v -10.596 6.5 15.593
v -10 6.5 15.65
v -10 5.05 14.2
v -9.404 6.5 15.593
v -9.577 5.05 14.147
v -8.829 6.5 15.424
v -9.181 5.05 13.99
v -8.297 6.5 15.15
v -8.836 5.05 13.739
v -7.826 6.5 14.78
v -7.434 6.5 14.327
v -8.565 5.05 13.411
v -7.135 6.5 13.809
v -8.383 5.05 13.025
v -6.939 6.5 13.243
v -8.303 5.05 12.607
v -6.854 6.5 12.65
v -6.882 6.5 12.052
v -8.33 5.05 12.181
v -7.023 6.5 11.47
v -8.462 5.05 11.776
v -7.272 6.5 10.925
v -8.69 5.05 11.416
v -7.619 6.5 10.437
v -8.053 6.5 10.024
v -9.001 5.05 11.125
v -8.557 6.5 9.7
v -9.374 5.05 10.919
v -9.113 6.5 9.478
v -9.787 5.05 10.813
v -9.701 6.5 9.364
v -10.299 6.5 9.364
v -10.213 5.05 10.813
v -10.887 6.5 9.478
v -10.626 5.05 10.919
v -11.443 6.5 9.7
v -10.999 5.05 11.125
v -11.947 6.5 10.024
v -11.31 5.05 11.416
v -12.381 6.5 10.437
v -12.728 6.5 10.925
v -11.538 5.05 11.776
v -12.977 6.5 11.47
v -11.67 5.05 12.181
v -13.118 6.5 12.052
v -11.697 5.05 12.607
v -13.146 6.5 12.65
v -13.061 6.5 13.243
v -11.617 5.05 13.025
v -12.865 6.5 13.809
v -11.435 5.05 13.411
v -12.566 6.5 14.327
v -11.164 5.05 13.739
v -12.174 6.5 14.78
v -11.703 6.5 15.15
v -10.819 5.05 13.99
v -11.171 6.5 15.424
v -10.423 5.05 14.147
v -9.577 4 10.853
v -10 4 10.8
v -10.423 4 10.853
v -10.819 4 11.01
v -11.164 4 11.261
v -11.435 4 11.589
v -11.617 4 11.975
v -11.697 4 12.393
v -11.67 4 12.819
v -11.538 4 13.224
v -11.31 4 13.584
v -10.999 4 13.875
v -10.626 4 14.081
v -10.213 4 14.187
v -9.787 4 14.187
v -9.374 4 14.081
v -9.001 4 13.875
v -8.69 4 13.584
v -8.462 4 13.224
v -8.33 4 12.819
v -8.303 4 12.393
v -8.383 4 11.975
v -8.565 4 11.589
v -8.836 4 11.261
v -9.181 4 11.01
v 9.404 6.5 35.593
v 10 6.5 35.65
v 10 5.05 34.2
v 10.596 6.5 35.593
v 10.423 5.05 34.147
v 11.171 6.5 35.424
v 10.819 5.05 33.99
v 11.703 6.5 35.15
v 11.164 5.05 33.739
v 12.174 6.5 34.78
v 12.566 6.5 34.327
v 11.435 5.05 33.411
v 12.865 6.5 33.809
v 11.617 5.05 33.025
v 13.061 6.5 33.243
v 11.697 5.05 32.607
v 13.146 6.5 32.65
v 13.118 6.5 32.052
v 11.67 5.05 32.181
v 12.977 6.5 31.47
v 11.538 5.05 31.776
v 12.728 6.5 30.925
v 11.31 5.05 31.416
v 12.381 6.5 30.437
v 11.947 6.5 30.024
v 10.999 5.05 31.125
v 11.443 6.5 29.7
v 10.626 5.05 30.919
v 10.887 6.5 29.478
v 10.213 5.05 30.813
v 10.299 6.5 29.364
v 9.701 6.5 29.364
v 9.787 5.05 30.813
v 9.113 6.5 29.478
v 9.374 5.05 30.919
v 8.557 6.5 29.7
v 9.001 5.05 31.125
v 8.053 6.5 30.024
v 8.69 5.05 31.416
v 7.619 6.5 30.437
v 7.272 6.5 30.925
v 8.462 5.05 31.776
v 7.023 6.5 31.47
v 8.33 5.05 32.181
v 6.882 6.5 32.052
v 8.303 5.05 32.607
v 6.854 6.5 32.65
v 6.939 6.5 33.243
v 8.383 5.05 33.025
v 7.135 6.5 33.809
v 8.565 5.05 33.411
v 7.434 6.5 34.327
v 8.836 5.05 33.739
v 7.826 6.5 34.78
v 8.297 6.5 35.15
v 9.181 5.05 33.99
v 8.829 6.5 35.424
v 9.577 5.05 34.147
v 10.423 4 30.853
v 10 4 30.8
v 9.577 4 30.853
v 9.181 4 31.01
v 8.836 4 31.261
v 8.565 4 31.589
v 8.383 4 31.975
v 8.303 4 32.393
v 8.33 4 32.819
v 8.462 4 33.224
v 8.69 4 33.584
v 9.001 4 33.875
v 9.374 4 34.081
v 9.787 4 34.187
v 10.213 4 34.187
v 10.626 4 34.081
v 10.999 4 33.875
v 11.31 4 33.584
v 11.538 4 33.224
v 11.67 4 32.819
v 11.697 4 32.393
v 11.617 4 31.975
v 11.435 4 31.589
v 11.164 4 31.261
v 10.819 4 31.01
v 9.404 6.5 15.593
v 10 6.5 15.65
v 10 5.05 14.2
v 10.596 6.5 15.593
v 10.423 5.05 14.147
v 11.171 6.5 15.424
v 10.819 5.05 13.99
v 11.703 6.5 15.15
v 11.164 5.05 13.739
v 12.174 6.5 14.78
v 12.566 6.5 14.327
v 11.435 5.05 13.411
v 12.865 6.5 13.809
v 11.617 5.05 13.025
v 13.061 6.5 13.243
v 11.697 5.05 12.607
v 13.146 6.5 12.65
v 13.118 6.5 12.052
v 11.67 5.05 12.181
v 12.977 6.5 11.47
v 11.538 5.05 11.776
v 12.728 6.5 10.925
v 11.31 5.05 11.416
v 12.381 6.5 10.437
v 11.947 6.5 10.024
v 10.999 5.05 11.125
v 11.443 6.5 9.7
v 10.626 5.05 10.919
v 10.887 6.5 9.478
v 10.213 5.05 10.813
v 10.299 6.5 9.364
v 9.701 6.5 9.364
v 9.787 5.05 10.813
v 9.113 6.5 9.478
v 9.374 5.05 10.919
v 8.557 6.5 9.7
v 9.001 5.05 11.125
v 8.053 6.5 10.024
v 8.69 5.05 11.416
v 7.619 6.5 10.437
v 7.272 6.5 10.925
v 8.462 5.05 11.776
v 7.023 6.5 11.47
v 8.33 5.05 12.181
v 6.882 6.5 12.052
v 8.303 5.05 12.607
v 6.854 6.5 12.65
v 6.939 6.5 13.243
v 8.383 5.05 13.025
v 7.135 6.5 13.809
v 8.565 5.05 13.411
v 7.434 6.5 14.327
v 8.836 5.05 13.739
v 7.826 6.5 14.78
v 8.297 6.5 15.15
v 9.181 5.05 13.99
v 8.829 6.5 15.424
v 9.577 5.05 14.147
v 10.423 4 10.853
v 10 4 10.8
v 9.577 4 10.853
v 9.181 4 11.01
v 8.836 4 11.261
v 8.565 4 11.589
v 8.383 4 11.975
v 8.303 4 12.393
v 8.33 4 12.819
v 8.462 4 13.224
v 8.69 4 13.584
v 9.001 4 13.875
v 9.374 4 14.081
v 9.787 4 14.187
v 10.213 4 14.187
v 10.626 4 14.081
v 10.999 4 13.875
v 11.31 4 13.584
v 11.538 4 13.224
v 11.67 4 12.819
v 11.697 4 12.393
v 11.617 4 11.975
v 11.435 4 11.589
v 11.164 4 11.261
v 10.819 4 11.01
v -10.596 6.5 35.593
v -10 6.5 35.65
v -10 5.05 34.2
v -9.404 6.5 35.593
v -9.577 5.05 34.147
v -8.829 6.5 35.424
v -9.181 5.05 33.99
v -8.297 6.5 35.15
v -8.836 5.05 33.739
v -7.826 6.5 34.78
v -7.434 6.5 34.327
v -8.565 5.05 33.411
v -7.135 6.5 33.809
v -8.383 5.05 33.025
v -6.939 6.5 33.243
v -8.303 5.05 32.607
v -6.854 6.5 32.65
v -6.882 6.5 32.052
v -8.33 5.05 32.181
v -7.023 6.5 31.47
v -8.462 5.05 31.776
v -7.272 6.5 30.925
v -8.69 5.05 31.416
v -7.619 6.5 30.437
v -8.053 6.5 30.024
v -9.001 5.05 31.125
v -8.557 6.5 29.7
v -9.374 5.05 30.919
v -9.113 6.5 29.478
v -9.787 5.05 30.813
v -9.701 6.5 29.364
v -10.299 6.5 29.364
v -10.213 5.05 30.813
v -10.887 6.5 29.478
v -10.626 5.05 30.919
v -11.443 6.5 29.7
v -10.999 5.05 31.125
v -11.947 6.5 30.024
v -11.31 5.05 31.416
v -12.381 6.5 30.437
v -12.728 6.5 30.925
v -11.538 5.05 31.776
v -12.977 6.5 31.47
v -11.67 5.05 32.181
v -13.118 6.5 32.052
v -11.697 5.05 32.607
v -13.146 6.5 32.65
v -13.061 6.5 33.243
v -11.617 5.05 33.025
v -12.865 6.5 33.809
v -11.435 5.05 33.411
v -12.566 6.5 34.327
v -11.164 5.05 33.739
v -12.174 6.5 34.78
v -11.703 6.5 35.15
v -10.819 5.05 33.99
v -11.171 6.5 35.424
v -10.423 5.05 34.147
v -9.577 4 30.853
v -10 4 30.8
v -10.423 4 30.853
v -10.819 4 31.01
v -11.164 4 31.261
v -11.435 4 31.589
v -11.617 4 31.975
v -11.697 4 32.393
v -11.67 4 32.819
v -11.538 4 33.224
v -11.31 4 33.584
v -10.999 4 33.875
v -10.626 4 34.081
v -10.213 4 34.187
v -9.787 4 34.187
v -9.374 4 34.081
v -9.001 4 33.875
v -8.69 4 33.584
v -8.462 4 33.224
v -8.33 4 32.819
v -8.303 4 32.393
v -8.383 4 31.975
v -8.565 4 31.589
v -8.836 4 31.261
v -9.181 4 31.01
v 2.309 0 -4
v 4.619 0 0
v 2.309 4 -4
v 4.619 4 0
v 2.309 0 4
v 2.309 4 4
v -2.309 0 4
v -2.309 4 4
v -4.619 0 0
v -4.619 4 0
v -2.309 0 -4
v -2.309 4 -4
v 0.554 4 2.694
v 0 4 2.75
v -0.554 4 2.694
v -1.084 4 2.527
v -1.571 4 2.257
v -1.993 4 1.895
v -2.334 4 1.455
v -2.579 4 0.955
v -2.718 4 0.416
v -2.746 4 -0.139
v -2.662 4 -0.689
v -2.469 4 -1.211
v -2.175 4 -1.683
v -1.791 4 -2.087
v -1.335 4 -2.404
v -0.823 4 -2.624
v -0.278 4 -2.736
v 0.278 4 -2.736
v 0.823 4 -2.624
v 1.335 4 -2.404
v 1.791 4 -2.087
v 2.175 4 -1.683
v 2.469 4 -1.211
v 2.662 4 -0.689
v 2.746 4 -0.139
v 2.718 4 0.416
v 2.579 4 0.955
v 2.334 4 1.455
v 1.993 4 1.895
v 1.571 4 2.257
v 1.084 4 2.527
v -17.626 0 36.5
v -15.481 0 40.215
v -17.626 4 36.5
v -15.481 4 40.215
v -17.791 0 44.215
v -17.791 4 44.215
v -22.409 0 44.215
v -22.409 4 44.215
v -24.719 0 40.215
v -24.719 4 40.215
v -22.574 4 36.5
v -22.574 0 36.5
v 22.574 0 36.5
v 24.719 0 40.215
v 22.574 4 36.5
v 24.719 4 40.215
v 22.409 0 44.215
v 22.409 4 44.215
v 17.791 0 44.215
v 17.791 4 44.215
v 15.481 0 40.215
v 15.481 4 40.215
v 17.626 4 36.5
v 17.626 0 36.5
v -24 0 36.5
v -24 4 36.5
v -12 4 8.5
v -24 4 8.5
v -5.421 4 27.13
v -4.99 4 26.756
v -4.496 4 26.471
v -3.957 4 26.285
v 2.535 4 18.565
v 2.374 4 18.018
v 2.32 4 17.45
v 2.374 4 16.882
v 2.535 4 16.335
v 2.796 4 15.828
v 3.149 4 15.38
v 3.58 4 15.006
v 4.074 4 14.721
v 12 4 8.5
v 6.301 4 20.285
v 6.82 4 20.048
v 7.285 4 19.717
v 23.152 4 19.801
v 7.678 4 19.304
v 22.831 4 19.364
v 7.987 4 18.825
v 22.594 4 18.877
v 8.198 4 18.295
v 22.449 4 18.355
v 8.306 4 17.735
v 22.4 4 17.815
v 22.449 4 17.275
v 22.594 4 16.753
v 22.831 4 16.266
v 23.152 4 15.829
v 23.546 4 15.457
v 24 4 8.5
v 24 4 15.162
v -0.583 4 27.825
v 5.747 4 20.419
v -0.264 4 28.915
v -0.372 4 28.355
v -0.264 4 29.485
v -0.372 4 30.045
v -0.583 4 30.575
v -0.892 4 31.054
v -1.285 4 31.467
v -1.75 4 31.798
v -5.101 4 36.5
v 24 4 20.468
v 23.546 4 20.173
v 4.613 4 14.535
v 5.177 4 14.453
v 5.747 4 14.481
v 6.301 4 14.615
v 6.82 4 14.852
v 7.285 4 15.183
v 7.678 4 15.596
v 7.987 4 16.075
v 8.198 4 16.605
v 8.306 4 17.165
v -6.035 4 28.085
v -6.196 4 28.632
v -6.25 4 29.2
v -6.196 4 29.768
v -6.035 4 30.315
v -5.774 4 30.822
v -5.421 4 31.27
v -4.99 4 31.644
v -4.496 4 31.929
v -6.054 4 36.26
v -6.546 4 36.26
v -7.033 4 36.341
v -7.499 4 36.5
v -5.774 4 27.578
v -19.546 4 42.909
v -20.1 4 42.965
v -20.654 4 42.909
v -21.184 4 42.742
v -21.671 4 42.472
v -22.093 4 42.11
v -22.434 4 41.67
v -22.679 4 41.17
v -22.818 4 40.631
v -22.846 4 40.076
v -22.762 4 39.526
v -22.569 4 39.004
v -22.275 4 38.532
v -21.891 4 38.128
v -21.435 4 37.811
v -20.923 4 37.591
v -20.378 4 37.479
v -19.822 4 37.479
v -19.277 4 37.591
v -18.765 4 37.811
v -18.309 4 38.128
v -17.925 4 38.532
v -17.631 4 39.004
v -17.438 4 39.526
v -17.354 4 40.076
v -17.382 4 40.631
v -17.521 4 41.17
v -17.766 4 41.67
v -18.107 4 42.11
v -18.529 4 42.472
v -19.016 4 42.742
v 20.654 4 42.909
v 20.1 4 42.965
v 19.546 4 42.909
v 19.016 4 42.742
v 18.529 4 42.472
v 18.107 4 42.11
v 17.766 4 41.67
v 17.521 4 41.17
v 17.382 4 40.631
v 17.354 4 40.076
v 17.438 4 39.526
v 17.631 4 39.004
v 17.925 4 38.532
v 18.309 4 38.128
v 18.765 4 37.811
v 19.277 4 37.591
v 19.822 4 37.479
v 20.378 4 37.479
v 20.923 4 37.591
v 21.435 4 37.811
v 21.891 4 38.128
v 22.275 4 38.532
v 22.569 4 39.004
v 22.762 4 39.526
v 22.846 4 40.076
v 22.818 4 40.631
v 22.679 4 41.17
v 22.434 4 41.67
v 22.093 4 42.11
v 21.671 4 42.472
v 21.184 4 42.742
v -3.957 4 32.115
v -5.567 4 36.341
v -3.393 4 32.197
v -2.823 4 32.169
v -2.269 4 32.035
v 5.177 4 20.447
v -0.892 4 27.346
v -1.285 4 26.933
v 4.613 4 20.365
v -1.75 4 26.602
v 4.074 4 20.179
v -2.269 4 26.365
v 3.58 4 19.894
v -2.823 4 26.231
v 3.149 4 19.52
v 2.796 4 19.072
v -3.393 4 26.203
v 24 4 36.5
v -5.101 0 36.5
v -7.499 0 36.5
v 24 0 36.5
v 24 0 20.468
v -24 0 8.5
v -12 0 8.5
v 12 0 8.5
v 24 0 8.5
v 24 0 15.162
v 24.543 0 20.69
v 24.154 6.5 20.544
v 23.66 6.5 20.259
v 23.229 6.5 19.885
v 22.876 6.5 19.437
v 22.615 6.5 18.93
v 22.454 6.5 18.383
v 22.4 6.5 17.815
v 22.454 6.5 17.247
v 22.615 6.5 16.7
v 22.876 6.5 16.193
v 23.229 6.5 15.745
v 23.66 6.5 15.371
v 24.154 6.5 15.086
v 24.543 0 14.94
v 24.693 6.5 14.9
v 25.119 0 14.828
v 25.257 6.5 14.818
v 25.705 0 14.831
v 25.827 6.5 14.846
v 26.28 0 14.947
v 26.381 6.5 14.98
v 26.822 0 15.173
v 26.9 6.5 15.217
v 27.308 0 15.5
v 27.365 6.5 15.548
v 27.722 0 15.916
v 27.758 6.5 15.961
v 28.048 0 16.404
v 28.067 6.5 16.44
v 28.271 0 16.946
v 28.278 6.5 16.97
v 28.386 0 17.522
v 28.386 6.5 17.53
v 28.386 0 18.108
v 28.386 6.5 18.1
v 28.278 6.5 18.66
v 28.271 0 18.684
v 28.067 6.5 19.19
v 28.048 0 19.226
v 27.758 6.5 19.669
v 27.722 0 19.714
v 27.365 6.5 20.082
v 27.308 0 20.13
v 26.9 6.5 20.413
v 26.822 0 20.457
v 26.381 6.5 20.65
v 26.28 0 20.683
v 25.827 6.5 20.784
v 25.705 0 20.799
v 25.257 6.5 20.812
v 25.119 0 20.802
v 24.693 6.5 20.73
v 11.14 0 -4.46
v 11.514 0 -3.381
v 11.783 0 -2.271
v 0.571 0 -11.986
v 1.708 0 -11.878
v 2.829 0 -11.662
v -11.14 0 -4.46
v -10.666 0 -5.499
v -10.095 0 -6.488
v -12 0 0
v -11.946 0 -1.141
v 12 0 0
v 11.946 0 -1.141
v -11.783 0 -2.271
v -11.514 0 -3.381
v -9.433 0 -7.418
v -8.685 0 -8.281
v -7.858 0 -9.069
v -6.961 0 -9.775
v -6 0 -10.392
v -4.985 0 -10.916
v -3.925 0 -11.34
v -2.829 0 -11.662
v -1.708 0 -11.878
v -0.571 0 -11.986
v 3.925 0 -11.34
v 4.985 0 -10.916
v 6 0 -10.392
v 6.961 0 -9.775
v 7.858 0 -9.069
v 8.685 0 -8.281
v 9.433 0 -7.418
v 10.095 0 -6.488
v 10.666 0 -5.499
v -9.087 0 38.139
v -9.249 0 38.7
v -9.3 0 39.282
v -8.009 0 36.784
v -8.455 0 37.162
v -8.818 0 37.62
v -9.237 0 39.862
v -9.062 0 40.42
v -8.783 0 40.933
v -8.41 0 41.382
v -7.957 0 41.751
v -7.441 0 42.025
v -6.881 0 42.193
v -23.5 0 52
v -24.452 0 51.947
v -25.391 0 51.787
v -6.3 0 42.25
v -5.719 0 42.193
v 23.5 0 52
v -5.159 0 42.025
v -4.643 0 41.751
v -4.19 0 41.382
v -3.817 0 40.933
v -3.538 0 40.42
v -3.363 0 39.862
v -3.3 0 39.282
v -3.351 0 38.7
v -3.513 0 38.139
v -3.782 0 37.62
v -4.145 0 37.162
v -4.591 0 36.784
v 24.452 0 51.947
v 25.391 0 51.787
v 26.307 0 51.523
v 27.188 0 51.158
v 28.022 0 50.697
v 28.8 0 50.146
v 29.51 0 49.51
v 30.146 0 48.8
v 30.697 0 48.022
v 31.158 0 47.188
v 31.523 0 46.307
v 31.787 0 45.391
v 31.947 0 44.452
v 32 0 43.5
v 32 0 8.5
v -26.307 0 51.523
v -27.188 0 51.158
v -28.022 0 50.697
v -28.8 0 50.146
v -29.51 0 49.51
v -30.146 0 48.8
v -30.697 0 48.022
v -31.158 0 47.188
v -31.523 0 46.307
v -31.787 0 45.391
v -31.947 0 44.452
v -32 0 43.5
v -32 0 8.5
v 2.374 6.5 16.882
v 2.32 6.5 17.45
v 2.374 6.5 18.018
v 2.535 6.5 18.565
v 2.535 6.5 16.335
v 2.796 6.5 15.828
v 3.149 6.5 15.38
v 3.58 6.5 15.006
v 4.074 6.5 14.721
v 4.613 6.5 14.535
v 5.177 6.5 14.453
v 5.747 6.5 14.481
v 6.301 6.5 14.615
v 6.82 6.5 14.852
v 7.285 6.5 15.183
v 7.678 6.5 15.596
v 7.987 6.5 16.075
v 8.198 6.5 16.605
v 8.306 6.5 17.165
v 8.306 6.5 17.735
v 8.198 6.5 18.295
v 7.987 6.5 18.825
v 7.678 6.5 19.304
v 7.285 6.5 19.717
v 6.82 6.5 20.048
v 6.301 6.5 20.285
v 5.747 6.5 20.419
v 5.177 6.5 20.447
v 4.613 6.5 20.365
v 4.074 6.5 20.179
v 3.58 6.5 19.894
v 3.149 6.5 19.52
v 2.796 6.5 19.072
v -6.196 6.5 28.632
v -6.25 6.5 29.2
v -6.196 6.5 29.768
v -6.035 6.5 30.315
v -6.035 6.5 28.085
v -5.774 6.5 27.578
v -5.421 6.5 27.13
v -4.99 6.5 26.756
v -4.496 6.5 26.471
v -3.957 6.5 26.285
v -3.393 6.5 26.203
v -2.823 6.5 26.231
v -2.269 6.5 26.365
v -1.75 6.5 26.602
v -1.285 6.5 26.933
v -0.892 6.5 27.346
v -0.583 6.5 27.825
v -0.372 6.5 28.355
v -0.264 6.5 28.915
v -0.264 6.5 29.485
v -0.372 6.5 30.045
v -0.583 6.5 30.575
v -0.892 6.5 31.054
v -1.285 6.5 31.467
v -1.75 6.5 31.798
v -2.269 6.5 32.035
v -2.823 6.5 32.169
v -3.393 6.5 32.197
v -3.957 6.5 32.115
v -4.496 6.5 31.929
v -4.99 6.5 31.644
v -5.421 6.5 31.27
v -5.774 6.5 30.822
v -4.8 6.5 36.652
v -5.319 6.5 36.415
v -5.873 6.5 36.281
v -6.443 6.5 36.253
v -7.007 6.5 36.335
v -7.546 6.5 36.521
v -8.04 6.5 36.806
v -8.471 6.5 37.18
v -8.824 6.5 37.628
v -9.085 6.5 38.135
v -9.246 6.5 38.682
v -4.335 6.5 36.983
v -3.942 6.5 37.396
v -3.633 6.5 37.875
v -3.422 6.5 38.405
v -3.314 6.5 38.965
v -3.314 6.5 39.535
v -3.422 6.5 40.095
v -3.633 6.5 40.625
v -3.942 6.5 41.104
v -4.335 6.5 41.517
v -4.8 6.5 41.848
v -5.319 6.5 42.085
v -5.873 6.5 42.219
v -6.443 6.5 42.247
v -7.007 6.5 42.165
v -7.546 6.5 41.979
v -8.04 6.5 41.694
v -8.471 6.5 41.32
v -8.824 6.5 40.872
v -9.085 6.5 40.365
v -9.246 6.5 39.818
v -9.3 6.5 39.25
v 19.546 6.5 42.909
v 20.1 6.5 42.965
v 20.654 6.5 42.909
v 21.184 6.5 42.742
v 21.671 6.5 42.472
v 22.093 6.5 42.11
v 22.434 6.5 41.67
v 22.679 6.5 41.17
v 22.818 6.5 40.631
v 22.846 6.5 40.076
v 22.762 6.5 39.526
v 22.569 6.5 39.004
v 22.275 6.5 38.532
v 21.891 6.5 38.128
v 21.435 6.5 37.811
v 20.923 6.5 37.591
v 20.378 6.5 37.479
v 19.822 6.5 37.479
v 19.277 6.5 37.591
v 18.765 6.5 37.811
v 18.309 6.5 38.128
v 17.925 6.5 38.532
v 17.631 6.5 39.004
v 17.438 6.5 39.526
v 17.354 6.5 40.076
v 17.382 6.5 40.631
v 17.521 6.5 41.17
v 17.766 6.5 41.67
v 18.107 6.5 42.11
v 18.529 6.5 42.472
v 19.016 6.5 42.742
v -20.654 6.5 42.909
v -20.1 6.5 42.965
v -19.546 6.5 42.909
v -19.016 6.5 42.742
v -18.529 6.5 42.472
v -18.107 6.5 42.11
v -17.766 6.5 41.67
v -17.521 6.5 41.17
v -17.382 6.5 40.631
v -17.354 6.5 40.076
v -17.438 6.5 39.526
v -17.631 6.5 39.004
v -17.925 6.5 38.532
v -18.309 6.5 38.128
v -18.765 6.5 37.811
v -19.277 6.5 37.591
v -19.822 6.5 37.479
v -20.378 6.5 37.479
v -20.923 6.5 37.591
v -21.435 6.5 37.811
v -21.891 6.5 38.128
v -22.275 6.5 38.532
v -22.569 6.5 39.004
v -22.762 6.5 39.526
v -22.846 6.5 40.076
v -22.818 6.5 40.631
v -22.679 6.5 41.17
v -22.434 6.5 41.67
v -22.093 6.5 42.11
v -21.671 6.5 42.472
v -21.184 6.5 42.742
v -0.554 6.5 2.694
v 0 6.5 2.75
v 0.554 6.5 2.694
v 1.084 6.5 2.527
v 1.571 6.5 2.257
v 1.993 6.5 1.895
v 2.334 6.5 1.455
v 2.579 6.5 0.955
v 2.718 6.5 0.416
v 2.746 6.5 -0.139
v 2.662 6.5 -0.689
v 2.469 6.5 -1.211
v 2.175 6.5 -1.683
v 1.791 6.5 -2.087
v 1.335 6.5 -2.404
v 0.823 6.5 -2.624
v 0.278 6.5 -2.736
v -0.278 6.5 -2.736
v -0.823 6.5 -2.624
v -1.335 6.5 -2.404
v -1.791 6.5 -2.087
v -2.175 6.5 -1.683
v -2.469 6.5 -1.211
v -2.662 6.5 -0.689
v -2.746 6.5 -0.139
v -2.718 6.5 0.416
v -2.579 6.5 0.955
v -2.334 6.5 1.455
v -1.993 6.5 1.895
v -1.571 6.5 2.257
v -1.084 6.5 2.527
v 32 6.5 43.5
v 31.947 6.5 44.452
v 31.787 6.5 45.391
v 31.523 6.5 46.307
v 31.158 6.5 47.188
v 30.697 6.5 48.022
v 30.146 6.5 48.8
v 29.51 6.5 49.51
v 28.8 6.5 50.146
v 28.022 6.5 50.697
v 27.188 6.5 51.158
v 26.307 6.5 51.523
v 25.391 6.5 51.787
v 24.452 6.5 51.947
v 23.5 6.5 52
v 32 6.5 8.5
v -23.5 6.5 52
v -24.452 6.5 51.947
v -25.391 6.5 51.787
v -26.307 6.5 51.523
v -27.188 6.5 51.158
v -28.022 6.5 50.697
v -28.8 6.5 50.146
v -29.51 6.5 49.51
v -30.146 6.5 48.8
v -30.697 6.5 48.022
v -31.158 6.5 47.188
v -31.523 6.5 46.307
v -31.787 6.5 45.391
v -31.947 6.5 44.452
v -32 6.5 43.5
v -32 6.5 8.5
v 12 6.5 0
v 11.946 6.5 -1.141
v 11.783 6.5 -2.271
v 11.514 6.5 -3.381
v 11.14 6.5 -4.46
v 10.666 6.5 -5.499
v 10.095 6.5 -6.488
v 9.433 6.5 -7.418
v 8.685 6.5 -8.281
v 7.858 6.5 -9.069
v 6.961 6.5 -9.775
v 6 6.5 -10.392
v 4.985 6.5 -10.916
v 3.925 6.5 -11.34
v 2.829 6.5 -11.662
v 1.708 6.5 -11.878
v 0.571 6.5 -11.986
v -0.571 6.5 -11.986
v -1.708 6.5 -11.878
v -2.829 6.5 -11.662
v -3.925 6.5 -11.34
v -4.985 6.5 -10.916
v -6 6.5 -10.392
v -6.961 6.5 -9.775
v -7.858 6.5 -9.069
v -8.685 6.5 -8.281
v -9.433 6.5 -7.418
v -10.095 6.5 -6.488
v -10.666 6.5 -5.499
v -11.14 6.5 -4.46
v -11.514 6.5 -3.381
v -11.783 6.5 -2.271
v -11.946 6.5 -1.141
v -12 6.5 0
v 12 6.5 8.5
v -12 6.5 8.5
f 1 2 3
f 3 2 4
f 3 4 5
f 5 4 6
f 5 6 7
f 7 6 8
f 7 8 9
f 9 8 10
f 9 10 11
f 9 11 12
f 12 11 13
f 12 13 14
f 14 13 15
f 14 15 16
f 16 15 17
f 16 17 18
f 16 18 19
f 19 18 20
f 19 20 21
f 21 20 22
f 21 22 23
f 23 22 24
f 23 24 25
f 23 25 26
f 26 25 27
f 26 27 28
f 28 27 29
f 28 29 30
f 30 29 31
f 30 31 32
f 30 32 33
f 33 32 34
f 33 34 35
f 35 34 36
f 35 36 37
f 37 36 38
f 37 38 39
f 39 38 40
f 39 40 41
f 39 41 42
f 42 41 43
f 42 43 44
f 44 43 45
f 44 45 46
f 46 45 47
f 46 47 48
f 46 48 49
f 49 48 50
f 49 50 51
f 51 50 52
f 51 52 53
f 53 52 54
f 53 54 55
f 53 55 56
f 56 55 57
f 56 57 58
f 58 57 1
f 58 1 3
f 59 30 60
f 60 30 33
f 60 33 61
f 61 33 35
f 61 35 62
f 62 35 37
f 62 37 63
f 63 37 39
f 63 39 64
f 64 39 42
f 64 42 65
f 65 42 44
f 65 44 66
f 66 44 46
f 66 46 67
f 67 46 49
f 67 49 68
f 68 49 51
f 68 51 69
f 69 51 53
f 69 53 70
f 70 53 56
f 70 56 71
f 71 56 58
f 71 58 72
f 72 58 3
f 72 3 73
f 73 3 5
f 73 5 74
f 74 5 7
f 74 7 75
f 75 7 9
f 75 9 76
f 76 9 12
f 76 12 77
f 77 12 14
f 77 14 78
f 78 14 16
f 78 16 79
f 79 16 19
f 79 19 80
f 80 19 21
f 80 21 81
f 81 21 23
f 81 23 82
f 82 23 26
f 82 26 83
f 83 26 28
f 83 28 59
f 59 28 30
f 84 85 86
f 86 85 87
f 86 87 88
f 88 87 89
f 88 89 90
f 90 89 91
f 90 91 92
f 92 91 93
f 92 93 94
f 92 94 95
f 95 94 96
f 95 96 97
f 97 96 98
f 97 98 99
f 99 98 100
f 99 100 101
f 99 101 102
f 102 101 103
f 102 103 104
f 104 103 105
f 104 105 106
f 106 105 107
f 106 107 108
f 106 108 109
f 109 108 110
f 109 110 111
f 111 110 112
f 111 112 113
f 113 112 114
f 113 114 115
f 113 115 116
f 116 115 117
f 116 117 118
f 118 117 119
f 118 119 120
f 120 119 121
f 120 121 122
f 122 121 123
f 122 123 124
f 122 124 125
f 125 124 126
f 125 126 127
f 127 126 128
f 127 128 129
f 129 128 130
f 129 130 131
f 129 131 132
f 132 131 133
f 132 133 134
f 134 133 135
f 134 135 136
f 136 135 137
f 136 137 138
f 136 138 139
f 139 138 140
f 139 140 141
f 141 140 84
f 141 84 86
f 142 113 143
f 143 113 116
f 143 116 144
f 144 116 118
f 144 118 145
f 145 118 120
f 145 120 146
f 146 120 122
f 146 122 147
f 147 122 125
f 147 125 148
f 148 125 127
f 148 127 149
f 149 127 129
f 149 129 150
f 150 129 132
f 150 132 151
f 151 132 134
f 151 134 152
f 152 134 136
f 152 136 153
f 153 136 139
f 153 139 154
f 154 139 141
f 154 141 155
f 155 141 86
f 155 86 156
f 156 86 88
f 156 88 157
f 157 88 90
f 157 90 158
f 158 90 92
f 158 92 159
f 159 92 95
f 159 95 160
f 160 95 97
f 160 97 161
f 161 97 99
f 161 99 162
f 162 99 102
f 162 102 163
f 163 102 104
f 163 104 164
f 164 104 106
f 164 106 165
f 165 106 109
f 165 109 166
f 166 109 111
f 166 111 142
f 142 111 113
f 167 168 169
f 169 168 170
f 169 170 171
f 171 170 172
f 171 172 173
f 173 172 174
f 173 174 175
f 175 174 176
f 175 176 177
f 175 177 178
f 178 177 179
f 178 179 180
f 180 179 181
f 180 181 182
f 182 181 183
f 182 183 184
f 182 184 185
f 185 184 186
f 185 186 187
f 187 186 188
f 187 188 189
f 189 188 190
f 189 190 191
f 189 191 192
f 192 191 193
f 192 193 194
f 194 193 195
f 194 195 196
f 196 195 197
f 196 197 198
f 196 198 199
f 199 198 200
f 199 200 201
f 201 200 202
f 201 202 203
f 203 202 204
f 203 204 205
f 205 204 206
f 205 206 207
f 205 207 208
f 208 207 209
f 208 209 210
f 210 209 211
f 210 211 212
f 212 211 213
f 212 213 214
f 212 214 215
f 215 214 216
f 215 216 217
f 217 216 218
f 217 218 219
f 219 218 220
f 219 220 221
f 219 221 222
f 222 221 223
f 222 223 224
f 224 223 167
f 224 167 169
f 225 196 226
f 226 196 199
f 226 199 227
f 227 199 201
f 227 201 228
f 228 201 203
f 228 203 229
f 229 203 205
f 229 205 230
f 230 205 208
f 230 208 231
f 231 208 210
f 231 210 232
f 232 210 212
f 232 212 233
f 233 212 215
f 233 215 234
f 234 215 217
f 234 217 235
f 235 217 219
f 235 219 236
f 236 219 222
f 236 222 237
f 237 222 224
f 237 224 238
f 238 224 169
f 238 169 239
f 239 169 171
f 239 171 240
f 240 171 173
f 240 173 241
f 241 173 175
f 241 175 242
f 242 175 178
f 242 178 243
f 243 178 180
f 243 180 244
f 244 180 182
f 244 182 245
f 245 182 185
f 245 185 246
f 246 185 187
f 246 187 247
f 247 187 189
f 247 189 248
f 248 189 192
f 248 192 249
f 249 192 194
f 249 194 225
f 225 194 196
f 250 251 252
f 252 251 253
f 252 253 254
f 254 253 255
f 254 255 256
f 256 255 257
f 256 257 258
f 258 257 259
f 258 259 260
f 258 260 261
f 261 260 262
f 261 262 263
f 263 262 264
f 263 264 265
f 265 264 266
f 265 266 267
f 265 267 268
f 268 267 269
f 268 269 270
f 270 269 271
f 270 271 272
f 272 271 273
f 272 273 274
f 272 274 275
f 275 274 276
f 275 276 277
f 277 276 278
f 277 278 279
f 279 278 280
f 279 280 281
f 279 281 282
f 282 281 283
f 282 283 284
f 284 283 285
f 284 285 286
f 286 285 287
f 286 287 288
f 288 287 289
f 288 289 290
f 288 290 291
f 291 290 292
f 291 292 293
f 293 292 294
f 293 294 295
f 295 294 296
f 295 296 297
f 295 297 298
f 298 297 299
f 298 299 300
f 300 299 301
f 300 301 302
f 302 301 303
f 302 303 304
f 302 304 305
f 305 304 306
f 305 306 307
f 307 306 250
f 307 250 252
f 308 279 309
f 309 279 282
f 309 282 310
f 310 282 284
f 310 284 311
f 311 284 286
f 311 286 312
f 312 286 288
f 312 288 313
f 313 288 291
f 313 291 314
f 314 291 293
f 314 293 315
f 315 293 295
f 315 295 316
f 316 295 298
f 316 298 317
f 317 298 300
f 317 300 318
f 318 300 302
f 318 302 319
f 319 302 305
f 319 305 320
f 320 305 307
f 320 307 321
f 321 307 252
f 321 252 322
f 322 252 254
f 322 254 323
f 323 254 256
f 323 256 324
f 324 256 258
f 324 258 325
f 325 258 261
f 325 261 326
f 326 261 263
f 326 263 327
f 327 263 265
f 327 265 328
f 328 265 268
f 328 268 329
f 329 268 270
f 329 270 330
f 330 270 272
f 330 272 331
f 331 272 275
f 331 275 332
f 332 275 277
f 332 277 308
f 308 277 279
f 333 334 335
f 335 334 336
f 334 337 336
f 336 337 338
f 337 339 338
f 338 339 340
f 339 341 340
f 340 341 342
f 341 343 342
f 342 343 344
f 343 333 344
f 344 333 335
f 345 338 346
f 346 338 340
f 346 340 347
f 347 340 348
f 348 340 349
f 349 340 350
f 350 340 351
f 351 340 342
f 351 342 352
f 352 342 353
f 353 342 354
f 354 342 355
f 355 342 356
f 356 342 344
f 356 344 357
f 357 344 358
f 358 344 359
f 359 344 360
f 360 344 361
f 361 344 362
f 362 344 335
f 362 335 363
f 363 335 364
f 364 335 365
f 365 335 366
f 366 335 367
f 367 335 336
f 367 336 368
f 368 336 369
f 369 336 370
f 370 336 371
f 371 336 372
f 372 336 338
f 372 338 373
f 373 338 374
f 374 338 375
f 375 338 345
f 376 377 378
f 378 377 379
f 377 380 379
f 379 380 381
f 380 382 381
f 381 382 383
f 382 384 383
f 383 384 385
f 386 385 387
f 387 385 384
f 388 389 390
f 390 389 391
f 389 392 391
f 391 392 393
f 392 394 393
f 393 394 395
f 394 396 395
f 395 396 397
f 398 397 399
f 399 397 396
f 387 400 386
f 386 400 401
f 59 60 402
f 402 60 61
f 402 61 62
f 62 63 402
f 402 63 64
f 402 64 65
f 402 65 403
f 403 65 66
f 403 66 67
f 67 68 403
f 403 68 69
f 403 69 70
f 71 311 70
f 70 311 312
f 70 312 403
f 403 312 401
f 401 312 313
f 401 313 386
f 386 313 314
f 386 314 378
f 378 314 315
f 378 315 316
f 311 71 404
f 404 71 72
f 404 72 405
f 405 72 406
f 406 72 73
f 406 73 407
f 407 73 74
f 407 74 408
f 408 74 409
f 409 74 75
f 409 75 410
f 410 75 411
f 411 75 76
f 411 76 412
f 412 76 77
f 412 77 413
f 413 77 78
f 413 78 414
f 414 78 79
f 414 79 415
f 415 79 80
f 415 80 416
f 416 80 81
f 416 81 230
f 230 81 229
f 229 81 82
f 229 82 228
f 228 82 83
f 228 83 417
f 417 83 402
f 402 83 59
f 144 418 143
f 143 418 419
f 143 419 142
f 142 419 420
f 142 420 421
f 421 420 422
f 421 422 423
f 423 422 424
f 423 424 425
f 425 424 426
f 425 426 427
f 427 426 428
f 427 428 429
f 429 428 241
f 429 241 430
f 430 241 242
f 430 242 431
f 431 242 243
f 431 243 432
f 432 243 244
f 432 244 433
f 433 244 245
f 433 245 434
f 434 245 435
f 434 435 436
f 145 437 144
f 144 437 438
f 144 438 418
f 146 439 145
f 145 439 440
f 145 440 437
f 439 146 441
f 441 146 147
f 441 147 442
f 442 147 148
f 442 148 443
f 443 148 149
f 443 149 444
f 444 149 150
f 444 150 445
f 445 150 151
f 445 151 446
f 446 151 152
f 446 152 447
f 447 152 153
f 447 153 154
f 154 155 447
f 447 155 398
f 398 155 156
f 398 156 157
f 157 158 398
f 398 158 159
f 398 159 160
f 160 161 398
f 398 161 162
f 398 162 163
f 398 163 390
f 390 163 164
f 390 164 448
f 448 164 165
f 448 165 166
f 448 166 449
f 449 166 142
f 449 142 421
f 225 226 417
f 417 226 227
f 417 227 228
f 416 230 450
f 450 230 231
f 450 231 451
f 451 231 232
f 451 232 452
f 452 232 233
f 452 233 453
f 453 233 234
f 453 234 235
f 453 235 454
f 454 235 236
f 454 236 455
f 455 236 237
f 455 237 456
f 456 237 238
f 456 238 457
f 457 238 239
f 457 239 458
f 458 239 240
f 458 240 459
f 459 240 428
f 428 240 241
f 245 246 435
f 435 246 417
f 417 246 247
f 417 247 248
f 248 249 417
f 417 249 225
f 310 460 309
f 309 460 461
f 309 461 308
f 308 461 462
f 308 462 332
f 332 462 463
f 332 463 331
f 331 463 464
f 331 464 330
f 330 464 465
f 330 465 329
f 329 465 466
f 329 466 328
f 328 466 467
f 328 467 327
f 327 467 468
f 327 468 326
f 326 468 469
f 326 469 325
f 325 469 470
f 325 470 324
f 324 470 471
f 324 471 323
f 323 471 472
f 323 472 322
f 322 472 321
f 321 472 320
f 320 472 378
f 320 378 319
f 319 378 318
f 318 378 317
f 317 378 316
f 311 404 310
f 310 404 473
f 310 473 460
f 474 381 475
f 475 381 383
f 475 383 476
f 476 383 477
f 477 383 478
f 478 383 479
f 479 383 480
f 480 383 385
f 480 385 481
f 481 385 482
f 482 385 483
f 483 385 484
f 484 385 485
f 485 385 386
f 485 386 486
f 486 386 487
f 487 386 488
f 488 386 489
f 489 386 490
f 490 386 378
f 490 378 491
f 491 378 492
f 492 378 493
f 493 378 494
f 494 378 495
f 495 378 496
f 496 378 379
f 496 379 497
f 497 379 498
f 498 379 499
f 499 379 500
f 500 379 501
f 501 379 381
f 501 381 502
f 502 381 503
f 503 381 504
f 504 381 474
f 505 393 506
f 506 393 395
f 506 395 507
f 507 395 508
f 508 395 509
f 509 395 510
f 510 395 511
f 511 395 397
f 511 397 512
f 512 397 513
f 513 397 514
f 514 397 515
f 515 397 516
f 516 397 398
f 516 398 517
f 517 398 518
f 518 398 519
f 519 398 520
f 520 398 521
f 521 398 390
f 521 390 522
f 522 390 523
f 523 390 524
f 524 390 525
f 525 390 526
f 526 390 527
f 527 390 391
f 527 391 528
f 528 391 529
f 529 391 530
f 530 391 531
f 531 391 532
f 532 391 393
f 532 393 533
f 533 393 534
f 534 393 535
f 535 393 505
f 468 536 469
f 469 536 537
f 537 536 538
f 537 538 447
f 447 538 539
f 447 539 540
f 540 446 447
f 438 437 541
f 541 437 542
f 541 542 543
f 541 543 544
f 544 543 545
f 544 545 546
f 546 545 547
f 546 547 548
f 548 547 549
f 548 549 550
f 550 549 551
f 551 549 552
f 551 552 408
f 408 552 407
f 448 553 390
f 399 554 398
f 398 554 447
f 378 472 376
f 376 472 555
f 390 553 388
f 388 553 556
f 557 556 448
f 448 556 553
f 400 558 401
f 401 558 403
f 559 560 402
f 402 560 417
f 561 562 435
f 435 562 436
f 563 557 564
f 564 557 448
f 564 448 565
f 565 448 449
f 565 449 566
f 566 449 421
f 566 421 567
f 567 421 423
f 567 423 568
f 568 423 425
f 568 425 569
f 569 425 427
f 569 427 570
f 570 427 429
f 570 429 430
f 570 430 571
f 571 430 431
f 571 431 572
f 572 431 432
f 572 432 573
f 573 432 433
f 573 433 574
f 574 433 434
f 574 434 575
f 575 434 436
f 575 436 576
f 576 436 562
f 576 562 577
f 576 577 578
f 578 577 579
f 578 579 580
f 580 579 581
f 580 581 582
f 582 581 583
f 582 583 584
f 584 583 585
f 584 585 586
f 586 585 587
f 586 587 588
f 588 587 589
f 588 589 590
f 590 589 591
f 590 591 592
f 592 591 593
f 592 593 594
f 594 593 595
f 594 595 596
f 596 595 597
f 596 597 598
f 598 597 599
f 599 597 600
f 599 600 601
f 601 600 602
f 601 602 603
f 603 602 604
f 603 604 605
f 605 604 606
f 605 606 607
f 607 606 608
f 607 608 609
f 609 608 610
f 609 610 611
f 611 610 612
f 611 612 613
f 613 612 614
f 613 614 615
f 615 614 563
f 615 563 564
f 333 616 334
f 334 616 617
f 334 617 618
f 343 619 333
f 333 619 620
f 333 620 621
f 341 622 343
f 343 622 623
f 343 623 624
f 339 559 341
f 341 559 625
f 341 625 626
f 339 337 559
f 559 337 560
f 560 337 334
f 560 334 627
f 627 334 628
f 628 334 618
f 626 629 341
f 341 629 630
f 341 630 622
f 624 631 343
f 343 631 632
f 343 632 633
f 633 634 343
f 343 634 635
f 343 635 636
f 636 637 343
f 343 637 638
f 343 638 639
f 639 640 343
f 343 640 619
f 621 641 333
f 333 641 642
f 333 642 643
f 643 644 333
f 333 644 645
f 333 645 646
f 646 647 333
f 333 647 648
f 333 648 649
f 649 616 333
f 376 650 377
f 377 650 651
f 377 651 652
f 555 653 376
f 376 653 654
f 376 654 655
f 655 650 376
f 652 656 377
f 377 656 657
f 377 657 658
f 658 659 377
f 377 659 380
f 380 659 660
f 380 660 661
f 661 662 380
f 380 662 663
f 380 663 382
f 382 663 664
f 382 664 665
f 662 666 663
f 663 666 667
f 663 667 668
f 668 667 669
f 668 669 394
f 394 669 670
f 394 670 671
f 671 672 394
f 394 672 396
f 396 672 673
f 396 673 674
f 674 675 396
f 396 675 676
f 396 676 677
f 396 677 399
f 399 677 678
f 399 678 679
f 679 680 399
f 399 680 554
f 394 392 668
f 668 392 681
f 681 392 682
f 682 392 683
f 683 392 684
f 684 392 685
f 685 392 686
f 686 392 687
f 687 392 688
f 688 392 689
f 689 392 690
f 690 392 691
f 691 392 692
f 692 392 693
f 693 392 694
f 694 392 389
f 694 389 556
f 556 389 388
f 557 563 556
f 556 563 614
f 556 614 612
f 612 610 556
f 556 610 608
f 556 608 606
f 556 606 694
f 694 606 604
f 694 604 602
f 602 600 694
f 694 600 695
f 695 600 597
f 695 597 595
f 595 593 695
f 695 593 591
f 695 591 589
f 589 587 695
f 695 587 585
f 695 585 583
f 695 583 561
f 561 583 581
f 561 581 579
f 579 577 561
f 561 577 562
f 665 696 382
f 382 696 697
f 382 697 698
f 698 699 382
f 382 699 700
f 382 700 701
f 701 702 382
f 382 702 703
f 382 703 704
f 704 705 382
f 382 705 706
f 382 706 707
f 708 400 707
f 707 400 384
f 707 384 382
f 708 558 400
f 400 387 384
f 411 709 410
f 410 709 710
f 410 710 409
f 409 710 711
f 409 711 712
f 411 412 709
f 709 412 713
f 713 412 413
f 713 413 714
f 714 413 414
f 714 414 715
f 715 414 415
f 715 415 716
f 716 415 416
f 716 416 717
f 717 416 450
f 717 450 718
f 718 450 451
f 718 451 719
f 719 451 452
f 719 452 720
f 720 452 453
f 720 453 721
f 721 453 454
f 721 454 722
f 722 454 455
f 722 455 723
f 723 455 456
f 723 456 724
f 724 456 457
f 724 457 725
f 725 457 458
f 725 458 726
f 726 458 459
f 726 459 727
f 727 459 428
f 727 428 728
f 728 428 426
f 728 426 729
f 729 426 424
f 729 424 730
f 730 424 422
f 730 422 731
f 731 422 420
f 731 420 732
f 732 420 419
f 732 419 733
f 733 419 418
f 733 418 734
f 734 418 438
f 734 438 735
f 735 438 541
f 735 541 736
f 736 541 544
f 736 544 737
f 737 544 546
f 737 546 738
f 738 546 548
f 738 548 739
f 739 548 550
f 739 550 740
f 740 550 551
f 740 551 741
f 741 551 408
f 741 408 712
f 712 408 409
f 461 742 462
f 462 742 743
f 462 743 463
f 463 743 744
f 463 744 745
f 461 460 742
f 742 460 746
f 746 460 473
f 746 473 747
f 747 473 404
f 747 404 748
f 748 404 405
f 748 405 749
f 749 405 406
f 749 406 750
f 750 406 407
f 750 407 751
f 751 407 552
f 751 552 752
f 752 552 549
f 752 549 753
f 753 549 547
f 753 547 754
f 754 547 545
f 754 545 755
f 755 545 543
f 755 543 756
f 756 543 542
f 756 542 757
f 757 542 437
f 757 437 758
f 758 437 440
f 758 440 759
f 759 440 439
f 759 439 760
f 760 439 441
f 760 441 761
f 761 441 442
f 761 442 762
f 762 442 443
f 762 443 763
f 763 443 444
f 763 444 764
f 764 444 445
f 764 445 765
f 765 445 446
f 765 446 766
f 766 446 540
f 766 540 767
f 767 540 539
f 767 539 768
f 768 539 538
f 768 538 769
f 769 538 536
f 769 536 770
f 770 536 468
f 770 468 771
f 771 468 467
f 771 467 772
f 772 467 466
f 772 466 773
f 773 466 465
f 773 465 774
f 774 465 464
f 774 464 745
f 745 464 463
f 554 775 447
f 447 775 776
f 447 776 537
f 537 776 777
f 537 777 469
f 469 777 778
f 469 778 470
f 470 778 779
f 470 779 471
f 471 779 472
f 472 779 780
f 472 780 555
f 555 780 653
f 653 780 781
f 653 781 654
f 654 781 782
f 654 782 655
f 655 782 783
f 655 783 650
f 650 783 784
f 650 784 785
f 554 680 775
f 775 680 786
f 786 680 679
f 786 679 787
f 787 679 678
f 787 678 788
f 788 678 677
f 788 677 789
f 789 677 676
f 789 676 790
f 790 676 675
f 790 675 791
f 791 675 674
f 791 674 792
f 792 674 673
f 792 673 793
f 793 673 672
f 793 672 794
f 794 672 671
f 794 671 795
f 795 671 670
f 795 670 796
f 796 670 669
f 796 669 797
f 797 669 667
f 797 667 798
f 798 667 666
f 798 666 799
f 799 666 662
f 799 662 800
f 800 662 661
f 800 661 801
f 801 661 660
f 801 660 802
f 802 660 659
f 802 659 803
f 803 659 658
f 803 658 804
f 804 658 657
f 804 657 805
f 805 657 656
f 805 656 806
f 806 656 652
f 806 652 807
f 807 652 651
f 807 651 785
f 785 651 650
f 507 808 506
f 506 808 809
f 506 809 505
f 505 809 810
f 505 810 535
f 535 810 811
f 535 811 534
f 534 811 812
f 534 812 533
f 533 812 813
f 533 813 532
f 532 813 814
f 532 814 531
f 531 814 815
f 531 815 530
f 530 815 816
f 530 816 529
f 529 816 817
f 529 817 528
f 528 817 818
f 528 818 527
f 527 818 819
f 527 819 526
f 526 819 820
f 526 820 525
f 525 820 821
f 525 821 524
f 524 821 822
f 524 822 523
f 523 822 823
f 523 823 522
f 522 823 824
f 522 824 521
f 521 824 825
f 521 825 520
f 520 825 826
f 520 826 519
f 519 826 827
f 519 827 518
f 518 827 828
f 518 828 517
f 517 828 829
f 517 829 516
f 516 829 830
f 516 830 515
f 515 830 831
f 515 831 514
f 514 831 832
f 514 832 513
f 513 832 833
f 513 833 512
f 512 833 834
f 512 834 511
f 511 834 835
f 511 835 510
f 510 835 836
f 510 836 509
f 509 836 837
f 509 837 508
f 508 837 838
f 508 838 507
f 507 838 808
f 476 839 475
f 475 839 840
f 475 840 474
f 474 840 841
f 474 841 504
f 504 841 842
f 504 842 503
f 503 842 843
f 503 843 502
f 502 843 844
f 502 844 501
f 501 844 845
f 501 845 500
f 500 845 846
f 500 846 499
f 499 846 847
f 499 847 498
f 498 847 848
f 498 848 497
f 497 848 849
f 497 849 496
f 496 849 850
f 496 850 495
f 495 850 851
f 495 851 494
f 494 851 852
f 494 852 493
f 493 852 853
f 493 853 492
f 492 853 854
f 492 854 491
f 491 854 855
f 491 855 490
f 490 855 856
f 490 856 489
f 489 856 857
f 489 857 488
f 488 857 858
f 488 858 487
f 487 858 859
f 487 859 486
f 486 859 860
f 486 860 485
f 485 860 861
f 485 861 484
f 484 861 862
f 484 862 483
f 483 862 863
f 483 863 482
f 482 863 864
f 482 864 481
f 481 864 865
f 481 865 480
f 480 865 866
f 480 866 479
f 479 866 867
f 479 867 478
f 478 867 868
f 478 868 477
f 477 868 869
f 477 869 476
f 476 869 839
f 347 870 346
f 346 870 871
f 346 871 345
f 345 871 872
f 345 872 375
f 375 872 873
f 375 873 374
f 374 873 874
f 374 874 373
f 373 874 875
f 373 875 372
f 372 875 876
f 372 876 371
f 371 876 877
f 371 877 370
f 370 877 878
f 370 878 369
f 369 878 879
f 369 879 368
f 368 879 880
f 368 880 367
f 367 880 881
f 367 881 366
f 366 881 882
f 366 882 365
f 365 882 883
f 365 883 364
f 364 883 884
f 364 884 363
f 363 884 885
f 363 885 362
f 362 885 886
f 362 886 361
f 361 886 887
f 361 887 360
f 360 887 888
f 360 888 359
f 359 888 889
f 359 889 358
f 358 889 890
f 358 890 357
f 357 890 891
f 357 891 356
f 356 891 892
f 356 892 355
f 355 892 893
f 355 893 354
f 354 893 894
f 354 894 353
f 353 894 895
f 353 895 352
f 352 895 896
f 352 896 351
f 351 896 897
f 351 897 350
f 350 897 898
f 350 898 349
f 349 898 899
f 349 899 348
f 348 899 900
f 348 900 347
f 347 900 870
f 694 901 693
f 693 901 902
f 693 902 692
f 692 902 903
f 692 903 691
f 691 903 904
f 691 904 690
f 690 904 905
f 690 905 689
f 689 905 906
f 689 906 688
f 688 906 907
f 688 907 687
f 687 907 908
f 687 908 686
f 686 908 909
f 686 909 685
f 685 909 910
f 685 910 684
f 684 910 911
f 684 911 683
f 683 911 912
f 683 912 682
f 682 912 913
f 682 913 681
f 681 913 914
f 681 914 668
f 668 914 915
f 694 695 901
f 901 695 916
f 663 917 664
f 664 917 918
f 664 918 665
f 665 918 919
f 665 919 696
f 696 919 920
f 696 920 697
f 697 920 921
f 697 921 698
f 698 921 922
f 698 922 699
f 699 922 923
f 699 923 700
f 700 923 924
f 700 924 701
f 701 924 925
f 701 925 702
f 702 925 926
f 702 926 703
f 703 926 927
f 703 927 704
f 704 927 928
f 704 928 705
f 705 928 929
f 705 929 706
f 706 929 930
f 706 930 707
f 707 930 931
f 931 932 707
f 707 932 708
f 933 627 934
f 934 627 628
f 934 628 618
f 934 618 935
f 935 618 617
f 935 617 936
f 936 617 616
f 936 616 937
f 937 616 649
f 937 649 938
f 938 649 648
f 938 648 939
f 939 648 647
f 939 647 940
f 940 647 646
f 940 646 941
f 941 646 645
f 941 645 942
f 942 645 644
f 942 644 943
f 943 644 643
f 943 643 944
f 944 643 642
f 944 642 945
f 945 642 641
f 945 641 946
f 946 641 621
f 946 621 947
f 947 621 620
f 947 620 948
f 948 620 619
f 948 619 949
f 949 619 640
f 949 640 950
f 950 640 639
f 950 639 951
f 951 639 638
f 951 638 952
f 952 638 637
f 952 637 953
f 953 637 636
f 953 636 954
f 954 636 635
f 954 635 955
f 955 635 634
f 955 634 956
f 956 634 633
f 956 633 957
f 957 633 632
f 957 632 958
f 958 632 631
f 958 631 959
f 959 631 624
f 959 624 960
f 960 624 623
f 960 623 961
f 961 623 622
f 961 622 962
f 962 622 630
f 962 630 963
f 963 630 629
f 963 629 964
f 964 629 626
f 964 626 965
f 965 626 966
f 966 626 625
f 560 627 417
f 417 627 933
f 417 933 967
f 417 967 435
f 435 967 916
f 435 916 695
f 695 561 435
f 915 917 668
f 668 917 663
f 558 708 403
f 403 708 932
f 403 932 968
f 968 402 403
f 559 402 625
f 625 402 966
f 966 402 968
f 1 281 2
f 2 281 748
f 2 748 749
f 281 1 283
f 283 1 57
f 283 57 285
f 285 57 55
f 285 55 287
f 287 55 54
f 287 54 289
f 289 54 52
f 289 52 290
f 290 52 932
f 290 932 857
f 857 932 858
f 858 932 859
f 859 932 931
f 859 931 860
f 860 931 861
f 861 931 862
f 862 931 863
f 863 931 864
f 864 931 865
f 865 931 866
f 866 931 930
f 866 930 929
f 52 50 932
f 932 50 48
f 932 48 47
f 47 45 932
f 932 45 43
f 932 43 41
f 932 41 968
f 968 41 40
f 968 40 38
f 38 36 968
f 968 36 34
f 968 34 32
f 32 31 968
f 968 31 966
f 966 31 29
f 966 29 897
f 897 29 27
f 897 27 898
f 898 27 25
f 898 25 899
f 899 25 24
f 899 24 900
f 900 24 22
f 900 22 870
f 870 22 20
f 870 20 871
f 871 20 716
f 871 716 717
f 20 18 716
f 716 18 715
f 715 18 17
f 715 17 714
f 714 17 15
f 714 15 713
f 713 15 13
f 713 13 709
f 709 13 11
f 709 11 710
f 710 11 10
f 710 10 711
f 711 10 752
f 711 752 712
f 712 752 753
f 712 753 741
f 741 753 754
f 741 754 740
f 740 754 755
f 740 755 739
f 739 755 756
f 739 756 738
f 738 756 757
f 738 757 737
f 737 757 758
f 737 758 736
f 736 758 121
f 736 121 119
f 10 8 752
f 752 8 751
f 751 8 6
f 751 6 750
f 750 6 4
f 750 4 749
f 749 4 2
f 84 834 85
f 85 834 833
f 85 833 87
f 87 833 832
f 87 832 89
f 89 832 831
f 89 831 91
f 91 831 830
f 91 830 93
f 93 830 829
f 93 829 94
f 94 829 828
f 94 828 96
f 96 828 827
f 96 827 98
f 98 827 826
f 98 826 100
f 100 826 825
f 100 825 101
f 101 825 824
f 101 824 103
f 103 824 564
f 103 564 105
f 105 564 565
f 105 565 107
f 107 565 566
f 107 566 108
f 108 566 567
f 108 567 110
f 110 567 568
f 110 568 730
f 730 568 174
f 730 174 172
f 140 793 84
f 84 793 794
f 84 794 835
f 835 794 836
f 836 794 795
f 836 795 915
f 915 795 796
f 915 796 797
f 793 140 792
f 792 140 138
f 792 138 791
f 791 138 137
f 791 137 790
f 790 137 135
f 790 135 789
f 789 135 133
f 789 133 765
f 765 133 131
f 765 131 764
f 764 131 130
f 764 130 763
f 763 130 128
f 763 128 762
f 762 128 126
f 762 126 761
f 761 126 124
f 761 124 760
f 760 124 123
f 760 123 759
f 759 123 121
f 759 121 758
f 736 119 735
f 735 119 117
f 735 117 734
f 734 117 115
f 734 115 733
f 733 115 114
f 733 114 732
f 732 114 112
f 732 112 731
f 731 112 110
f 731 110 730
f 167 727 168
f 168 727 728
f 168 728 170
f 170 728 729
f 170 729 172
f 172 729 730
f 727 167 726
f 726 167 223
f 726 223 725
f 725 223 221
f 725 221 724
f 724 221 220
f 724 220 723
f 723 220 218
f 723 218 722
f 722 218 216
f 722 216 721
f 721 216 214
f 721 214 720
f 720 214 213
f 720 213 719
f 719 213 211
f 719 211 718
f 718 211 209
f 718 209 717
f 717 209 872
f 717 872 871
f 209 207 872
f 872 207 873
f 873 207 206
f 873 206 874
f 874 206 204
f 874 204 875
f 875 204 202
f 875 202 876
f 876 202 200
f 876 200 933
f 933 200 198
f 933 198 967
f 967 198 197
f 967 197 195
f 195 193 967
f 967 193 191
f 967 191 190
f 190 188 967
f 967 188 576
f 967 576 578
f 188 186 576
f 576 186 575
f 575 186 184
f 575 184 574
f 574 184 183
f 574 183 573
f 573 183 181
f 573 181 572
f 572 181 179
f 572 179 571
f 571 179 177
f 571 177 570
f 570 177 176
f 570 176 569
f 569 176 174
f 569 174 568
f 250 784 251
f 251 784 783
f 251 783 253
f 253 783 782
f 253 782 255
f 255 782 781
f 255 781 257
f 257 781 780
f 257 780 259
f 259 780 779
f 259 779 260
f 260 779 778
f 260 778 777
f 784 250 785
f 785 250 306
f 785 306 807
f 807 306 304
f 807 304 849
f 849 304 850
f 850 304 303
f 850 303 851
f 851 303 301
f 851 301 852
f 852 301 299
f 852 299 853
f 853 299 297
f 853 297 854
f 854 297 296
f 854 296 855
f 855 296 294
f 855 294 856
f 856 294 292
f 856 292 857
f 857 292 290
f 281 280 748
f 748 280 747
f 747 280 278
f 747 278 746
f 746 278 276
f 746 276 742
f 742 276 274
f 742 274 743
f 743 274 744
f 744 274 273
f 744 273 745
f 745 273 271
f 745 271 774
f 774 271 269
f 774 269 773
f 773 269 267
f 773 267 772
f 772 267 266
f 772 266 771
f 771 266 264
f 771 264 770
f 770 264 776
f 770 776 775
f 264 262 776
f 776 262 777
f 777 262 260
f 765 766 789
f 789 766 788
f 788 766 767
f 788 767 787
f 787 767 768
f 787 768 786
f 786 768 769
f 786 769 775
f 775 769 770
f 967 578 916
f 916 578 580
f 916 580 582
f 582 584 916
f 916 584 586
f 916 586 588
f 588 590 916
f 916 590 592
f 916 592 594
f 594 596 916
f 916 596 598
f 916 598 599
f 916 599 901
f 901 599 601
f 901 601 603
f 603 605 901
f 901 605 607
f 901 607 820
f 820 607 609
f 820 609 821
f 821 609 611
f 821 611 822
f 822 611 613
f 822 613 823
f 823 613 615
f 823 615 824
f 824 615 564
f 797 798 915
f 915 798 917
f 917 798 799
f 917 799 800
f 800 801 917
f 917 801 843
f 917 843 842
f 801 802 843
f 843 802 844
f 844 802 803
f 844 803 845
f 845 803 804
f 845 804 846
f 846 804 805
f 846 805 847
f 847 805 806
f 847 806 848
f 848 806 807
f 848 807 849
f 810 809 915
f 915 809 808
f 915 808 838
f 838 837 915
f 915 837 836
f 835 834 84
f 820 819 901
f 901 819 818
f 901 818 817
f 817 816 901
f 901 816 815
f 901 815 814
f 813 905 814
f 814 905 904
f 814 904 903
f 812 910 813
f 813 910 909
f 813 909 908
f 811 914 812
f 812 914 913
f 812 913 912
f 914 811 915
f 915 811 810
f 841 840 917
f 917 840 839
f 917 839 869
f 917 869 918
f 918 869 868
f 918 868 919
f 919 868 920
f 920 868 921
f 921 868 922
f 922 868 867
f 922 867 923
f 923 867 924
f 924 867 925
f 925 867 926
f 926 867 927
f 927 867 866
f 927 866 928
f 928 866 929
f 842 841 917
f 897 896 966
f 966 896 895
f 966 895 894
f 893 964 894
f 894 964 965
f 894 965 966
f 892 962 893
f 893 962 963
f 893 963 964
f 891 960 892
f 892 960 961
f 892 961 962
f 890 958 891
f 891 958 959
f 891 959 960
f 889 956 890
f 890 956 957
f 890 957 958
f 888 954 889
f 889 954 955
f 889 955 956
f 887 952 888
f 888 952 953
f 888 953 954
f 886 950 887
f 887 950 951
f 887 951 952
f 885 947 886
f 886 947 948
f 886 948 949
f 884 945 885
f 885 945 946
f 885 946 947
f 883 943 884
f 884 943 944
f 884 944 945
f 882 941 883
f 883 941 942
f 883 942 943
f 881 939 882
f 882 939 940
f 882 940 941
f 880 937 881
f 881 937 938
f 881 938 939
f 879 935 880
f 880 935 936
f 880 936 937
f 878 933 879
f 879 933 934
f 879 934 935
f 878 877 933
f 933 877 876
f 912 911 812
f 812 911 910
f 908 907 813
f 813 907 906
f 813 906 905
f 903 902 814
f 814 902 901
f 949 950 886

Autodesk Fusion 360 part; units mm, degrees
sketch "Sketch1" plane through (0, 0, 0) normal (0, 1, 0) x (1, 0, 0)
  circle A0 centre (0, 0) radius 12
  line L0 (32, -52) -> (-32, -52)
  line L1 (-32, -52) -> (-32, -8.5)
  line L2 (-32, -8.5) -> (32, -8.5)
  line L3 (32, -8.5) -> (32, -52)
  line L4 (0, 0) -> (0, -52) construction
  line L5 (-12, 0) -> (-12, -8.5)
  line L6 (12, 0) -> (12, -8.5)
  dimension "d1" = 24
  dimension "d2" = 64
  dimension "d3" = 43.5
  dimension "d4" = 64
extrude "Extrude1" add sketch "Sketch1" along normal blind 6.5
fillet "Fillet1" radius 8.5 2 edges at (-32, 3.25, 52) (32, 3.25, 52)
sketch "Sketch2" plane through (0, 0, 0) normal (0, -1, 0) x (1, 0, 0)
  line L0 (-12, 8.5) -> (-12, 0)
  arc A0 (-12, 0) -> (12, 0) centre (0, 0) ccw
  line L1 (12, 0) -> (12, 8.5)
  line L2 (12, 8.5) -> (32, 8.5)
  line L3 (32, 8.5) -> (32, 43.5)
  line L4 (23.5, 52) -> (-23.5, 52)
  line L5 (-32, 43.5) -> (-32, 8.5)
  line L6 (-32, 8.5) -> (-12, 8.5)
  line L7 (-32, 40.215) -> (32, 40.215) construction
  circle A1 centre (-20.1, 40.215) radius 2.5 construction
  circle A2 centre (0, 0) radius 2.5 construction
  circle A3 centre (20.1, 40.215) radius 2.5 construction
  line L8 (0, 0) -> (0, 48) construction
  line L9 (-17.7906, 36.215) -> (-15.4812, 40.215)
  line L10 (-15.4812, 40.215) -> (-17.7906, 44.215)
  line L11 (-17.7906, 44.215) -> (-22.4094, 44.215)
  line L12 (-22.4094, 44.215) -> (-24.7188, 40.215)
  line L13 (-24.7188, 40.215) -> (-22.4094, 36.215)
  line L14 (-22.4094, 36.215) -> (-17.7906, 36.215)
  line L15 (22.4094, 36.215) -> (24.7188, 40.215)
  line L16 (24.7188, 40.215) -> (22.4094, 44.215)
  line L17 (22.4094, 44.215) -> (17.7906, 44.215)
  line L18 (17.7906, 44.215) -> (15.4812, 40.215)
  line L19 (15.4812, 40.215) -> (17.7906, 36.215)
  line L20 (17.7906, 36.215) -> (22.4094, 36.215)
  line L21 (2.3094, -4) -> (4.6188, 0)
  line L22 (4.6188, 0) -> (2.3094, 4)
  line L23 (2.3094, 4) -> (-2.3094, 4)
  line L24 (-2.3094, 4) -> (-4.6188, 0)
  line L25 (-4.6188, 0) -> (-2.3094, -4)
  line L26 (-2.3094, -4) -> (2.3094, -4)
  arc A4 (32, 43.5) -> (23.5, 52) centre (23.5, 43.5) ccw
  arc A5 (-23.5, 52) -> (-32, 43.5) centre (-23.5, 43.5) ccw
  point P0 (-20.1, 40.215)
  point P1 (20.1, 40.215)
  dimension "d7" = 40.215
  dimension "d8" = 5
  dimension "d9" = 5
  dimension "d10" = 5
  dimension "d11" = 20.1
  dimension "d12" = 20.1
  dimension "d13" = 4
  dimension "d14" = 4
  dimension "d45" = 4
hole "Hole1" at (-20.1, 0, 40.215) at (20.1, 0, 40.215) at (0, 0, 0) direction (0, 1, 0) diameter 5.5 depth 16 tip angle 118
sketch "Sketch3" plane through (0, 0, 0) normal (0, -1, 0) x (1, 0, 0)
  circle A0 centre (20.1, 40.215) radius 2.75
  circle A1 centre (-20.1, 40.215) radius 2.75
  circle A2 centre (0, 0) radius 2.75
  line L0 (-12, 8.5) -> (-12, 0)
  arc A3 (-12, 0) -> (12, 0) centre (0, 0) ccw
  line L1 (12, 0) -> (12, 8.5)
  line L2 (12, 8.5) -> (32, 8.5)
  line L3 (32, 8.5) -> (32, 43.5)
  line L4 (23.5, 52) -> (-23.5, 52)
  line L5 (-32, 43.5) -> (-32, 8.5)
  line L6 (-32, 8.5) -> (-12, 8.5)
  line L7 (0, 0) -> (0, 52) construction
  line L8 (32, 0) -> (-32, 0) construction
  circle A4 centre (5.32, 17.45) radius 3
  circle A5 centre (25.4, 17.815) radius 3
  circle A6 centre (-3.25, 29.2) radius 3
  circle A7 centre (-6.3, 39.25) radius 3
  arc A8 (32, 43.5) -> (23.5, 52) centre (23.5, 43.5) ccw
  arc A9 (-23.5, 52) -> (-32, 43.5) centre (-23.5, 43.5) ccw
  dimension "d18" = 6
  dimension "d19" = 17.45
  dimension "d20" = 5.32
  dimension "d21" = 6
  dimension "d22" = 25.4
  dimension "d23" = 17.815
  dimension "d24" = 6
  dimension "d25" = 6
  dimension "d26" = 6.3
  dimension "d27" = 3.25
  dimension "d28" = 39.25
  dimension "d29" = 29.2
extrude "Extrude2" cut sketch "Sketch3" against normal through all contours A4 | A5 | A6 | A7
sketch "Sketch4" plane through (0, 0, 0) normal (0, -1, 0) x (1, 0, 0)
  circle A0 centre (5.32, 17.45) radius 3
  circle A1 centre (-3.25, 29.2) radius 3
  circle A2 centre (25.4, 17.815) radius 3
  circle A3 centre (-6.3, 39.25) radius 3
  circle A4 centre (20.1, 40.215) radius 2.75
  circle A5 centre (-20.1, 40.215) radius 2.75
  circle A6 centre (0, 0) radius 2.75
  line L0 (-12, 8.5) -> (-12, 0)
  arc A7 (-12, 0) -> (12, 0) centre (0, 0) ccw
  line L1 (12, 0) -> (12, 8.5)
  line L2 (12, 8.5) -> (32, 8.5)
  line L3 (32, 8.5) -> (32, 43.5)
  line L4 (23.5, 52) -> (-23.5, 52)
  line L5 (-32, 43.5) -> (-32, 8.5)
  line L6 (-32, 8.5) -> (-12, 8.5)
  line L7 (0, 56) -> (0, 0) construction
  line L8 (41, 0) -> (0, 0) construction
  line L9 (24, 8.5) -> (-24, 8.5)
  line L10 (-24, 8.5) -> (-24, 36.5)
  line L11 (-24, 36.5) -> (24, 36.5)
  line L12 (24, 36.5) -> (24, 8.5)
  line L13 (24, 8.5) -> (-24, 36.5) construction
  line L14 (-24, 8.5) -> (24, 36.5) construction
  line L15 (10, 32.5) -> (-10, 32.5) construction
  line L16 (-10, 32.5) -> (-10, 12.5) construction
  line L17 (-10, 12.5) -> (10, 12.5) construction
  line L18 (10, 12.5) -> (10, 32.5) construction
  line L19 (10, 32.5) -> (-10, 12.5) construction
  line L20 (-10, 32.5) -> (10, 12.5) construction
  arc A8 (32, 43.5) -> (23.5, 52) centre (23.5, 43.5) ccw
  arc A9 (-23.5, 52) -> (-32, 43.5) centre (-23.5, 43.5) ccw
  point P0 (0, 22.5)
  point P1 (0, 22.5)
  dimension "d31" = 48
  dimension "d32" = 28
  dimension "d33" = 20
  dimension "d34" = 20
  dimension "d35" = 8.5
extrude "Extrude3" cut sketch "Sketch4" against normal blind 4 contours A2 A3 L2 L6 L9 L10 L11 L12 | A3 L11 picked at (-6.5707, 36.454)
extrude "Extrude4" cut sketch "Sketch2" against normal blind 4 contours L9 L10 L11 L12 L13 L14 | L15 L16 L17 L18 L19 L20 | L21 L22 L23 L24 L25 L26
sketch "Sketch5" plane through (0, 6.5, 0) normal (0, 1, 0) x (-1, 0, 0)
  circle A0 centre (-5.32, 17.45) radius 3
  circle A1 centre (3.25, 29.2) radius 3
  circle A2 centre (-25.4, 17.815) radius 3
  circle A3 centre (6.3, 39.25) radius 3
  circle A4 centre (-20.1, 40.215) radius 2.75
  circle A5 centre (20.1, 40.215) radius 2.75
  circle A6 centre (0, 0) radius 2.75
  line L0 (12, 0) -> (12, 8.5)
  line L1 (12, 8.5) -> (32, 8.5)
  line L2 (32, 8.5) -> (32, 43.5)
  line L3 (23.5, 52) -> (-23.5, 52)
  line L4 (-32, 43.5) -> (-32, 8.5)
  line L5 (-32, 8.5) -> (-12, 8.5)
  line L6 (-12, 8.5) -> (-12, 0)
  arc A7 (-12, 0) -> (12, 0) centre (0, 0) ccw
  line L7 (-10, 32.5) -> (10, 32.5)
  line L8 (-10, 12.5) -> (-10, 32.5)
  line L9 (10, 32.5) -> (10, 12.5)
  line L10 (10, 12.5) -> (-10, 12.5)
  arc A8 (-23.5, 52) -> (-32, 43.5) centre (-23.5, 43.5) ccw
  arc A9 (32, 43.5) -> (23.5, 52) centre (23.5, 43.5) ccw
hole "Hole2" at (10, 6.5, 32.5) at (10, 6.5, 12.5) at (-10, 6.5, 12.5) at (-10, 6.5, 32.5) direction (0, -1, 0) diameter 3.4 depth 16 tip angle 118 countersink diameter 6.3 countersink angle 90
